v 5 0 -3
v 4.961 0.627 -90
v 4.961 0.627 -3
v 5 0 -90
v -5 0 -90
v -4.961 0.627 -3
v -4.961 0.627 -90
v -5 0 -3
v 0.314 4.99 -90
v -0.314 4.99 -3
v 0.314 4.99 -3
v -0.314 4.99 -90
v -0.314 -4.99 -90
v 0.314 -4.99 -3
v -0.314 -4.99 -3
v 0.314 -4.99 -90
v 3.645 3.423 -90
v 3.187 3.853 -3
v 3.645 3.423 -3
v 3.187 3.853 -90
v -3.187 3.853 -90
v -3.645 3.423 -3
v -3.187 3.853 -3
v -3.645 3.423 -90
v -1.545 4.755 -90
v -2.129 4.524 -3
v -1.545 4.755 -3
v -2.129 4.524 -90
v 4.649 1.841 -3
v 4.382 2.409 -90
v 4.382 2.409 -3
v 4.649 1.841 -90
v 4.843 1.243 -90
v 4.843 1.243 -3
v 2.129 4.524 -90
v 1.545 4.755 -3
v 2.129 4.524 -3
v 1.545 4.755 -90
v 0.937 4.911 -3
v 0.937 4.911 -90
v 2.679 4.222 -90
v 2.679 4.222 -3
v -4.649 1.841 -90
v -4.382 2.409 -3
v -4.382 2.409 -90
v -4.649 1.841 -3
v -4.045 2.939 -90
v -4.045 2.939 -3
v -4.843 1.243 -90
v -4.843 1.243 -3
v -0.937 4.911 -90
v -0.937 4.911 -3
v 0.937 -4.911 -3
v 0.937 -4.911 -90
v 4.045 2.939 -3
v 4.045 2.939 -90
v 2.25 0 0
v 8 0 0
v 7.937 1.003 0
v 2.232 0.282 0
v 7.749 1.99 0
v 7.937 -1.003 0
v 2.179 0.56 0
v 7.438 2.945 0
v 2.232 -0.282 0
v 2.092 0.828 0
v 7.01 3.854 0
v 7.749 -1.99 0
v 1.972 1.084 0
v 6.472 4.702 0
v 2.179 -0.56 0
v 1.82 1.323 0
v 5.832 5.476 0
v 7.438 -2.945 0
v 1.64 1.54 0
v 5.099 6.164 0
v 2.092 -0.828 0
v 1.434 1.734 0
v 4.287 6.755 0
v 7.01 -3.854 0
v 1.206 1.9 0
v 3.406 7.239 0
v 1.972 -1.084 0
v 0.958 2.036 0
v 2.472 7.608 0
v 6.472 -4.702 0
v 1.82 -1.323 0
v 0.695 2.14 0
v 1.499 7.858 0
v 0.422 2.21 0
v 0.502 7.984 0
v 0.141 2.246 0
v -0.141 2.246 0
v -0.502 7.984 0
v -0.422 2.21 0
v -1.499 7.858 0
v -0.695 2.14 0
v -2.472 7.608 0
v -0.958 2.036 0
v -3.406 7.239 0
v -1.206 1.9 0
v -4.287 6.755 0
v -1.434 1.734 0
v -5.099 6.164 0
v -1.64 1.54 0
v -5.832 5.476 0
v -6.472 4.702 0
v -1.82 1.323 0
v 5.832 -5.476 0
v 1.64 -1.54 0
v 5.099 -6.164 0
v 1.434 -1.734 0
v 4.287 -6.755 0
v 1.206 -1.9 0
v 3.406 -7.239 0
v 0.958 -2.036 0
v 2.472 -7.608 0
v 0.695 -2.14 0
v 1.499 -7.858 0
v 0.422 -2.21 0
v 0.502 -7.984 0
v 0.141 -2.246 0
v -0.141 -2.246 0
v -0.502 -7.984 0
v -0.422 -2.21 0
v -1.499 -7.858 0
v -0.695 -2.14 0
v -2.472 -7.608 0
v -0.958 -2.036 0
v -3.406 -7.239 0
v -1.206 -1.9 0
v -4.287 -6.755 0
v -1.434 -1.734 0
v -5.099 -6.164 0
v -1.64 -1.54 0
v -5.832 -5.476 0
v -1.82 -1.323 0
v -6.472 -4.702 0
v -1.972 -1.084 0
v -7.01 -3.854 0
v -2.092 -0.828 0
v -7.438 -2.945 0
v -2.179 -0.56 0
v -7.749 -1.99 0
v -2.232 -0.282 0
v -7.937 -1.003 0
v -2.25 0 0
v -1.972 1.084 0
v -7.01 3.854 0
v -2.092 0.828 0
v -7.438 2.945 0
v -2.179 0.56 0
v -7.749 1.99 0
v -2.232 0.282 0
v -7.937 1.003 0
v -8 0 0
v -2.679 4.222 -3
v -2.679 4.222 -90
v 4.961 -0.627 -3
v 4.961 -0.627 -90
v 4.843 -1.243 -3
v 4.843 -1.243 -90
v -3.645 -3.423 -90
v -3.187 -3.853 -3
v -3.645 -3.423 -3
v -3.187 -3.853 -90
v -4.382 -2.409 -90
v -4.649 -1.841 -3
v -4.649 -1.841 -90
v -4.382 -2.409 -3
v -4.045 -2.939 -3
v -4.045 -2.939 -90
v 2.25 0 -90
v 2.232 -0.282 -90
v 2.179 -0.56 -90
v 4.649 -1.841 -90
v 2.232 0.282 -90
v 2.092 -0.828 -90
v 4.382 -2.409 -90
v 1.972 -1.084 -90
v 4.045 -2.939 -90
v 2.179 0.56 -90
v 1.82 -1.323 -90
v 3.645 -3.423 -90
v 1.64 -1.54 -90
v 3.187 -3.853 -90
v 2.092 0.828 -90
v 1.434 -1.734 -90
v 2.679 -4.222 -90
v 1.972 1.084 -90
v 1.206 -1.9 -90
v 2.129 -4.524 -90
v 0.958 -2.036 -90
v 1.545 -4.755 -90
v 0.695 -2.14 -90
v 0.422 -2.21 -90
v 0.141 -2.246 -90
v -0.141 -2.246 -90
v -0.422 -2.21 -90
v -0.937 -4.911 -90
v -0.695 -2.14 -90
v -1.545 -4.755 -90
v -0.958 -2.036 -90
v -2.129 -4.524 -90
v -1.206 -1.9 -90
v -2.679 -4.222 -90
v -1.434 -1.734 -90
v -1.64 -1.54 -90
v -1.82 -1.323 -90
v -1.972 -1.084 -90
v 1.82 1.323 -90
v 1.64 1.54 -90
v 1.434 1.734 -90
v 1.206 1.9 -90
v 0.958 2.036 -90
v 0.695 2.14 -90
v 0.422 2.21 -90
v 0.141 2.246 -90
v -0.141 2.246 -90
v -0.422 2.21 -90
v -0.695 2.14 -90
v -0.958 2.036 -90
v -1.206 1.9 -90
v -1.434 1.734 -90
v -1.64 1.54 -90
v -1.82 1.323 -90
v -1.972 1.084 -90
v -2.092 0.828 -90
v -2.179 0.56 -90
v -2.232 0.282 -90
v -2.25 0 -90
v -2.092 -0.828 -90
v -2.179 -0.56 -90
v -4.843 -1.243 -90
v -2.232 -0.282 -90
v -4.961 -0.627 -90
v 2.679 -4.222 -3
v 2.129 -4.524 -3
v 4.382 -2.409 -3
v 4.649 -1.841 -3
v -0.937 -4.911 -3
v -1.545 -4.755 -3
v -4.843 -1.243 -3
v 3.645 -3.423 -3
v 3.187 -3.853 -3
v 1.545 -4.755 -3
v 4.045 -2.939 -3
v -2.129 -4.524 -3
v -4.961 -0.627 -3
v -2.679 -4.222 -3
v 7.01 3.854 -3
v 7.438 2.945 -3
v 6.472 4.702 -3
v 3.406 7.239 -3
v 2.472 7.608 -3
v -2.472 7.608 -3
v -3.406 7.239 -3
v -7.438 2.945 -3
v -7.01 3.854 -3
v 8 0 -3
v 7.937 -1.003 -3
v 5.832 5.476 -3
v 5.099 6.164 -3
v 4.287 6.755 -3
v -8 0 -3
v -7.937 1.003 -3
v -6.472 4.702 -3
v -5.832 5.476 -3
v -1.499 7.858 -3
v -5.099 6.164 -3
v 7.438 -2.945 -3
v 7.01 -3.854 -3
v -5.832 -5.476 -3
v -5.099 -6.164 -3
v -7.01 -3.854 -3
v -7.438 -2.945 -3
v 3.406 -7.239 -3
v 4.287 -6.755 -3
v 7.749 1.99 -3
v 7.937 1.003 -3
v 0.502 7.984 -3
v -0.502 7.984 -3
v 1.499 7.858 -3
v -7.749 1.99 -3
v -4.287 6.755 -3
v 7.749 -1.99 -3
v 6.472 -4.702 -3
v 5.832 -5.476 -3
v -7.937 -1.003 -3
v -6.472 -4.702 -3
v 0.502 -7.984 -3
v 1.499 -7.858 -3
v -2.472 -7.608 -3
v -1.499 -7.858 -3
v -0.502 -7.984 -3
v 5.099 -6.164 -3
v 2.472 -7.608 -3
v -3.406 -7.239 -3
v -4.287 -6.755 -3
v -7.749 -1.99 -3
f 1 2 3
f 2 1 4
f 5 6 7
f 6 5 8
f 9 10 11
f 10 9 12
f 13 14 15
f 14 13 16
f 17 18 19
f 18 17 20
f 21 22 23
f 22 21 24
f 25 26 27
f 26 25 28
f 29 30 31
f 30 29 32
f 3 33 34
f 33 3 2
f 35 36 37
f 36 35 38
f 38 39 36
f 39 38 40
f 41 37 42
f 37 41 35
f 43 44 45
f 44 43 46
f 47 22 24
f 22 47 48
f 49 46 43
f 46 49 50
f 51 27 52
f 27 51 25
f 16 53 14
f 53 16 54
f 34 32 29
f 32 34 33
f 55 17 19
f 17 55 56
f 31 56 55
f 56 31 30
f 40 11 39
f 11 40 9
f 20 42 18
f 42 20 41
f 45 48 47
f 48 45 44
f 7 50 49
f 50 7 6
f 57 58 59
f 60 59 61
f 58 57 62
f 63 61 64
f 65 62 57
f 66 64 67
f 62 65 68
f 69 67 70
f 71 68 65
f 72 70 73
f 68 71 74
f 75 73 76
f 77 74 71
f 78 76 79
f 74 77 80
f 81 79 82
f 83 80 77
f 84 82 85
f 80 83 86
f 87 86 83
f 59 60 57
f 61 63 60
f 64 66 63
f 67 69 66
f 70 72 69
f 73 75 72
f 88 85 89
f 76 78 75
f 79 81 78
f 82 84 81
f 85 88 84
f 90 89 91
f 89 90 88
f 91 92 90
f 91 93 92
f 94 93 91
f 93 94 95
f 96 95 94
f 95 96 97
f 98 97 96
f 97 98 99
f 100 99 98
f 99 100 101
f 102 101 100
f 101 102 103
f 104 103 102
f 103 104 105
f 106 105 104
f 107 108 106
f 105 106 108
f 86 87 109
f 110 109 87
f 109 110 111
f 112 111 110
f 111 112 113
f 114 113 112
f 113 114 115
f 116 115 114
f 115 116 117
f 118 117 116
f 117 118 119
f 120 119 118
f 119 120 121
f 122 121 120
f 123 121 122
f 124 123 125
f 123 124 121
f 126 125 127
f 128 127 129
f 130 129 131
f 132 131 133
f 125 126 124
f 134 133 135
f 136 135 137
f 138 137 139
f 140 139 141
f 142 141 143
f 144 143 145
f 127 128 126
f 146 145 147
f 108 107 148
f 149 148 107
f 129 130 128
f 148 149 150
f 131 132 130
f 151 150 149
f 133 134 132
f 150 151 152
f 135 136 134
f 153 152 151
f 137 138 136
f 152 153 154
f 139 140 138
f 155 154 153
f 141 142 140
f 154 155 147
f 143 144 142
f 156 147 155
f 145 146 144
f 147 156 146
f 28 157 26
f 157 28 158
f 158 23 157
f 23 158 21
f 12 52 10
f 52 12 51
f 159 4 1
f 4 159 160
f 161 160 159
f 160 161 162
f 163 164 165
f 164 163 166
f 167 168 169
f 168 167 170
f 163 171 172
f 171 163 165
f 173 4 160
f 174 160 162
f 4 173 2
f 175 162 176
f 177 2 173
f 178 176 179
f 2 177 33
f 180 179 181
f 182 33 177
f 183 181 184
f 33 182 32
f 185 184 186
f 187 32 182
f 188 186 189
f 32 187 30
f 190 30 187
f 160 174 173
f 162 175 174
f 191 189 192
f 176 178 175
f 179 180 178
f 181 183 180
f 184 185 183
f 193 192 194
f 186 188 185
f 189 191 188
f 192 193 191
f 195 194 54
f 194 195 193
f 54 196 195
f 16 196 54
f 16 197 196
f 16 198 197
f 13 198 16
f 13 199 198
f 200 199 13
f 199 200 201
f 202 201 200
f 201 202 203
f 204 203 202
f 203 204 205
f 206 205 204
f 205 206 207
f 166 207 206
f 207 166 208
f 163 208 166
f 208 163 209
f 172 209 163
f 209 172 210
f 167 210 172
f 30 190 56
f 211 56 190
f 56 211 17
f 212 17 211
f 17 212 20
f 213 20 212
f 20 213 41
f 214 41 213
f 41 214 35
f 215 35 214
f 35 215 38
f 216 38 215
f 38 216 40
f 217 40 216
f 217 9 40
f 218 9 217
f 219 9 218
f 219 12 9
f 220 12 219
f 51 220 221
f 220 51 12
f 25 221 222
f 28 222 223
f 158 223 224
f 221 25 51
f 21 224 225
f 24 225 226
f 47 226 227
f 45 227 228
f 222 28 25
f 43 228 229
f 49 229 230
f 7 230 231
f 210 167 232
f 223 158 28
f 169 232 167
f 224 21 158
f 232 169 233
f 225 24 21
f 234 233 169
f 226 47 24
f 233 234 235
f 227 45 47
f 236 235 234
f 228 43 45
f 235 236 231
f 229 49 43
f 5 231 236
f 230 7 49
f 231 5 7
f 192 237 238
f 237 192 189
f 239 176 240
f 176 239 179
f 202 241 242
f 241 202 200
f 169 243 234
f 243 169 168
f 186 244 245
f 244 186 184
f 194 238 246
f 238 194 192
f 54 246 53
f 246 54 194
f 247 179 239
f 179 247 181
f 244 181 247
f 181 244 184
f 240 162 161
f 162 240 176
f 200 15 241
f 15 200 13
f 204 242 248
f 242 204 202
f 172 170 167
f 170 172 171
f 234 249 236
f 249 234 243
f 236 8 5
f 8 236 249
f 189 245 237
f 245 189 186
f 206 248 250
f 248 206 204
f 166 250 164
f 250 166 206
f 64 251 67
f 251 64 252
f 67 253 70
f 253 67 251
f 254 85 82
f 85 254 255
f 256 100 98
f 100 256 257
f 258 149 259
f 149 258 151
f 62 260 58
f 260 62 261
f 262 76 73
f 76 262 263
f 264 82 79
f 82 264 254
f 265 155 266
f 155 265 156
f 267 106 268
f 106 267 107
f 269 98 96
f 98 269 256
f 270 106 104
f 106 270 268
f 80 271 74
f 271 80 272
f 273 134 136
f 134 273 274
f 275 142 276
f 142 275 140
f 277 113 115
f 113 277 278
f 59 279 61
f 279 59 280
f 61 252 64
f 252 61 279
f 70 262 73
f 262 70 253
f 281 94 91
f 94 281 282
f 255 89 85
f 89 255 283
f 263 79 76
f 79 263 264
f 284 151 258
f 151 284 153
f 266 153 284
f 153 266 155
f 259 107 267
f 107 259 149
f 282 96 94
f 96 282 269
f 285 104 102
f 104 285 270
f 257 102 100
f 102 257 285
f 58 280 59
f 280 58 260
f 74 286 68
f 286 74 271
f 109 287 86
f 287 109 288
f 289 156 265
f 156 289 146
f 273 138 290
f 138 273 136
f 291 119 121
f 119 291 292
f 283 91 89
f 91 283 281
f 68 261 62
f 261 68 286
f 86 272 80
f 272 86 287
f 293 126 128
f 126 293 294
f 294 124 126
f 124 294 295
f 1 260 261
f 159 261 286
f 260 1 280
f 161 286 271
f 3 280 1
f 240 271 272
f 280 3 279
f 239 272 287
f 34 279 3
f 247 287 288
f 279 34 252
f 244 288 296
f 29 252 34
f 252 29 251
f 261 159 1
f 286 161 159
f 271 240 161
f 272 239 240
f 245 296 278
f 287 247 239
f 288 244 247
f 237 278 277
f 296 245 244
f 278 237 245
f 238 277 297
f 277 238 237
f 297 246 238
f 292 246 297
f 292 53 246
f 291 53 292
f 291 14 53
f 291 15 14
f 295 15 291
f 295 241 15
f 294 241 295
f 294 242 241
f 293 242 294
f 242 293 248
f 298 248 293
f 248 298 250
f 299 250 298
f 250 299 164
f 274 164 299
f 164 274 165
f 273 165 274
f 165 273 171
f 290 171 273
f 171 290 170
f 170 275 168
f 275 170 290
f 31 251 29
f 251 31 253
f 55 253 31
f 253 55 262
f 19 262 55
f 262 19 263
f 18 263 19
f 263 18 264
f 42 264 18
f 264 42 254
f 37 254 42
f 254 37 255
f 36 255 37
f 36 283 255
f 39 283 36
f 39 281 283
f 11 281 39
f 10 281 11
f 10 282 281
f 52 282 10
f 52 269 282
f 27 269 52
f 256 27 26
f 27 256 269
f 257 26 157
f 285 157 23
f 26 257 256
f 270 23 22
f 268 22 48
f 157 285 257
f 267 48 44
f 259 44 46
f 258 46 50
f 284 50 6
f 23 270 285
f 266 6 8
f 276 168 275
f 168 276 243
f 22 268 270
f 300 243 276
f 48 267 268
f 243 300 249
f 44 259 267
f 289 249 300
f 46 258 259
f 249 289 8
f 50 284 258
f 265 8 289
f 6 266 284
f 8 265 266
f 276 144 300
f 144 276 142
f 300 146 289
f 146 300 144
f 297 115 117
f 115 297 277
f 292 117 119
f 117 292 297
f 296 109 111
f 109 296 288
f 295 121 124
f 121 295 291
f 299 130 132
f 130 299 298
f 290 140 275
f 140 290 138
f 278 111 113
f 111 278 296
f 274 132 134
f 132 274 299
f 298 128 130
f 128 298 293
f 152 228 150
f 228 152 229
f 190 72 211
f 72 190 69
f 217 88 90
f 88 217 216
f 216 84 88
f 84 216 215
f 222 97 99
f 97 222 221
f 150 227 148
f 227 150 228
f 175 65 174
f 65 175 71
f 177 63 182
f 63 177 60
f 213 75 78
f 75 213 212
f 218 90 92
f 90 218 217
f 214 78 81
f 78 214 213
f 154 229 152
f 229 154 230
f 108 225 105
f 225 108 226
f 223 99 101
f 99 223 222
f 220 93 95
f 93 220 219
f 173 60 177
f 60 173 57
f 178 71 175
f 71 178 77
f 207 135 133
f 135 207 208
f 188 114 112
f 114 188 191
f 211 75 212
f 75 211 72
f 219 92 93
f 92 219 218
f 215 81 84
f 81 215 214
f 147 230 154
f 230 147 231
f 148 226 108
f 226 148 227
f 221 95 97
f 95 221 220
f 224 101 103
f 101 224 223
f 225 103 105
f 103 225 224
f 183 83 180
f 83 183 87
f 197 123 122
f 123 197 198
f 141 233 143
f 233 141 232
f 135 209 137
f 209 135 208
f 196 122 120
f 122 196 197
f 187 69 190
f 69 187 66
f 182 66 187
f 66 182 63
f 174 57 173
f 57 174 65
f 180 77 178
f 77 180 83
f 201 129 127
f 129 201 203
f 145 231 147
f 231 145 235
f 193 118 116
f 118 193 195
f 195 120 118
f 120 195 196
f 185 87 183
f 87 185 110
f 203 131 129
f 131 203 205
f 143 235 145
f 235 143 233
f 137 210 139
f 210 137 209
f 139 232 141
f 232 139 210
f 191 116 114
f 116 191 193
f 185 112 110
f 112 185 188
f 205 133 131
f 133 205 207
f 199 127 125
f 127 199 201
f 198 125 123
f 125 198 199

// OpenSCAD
$fn = 50;


difference() {
	union() {
		translate(v = [0, 0, -90.0000000000]) {
			cylinder(h = 90, r = 5.0000000000);
		}
		translate(v = [0, 0, -3.0000000000]) {
			cylinder(h = 3, r = 8.0000000000);
		}
	}
	union() {
		#translate(v = [0, 0, -90]) {
			cylinder(h = 90, r = 2.2500000000);
		}
	}
}
